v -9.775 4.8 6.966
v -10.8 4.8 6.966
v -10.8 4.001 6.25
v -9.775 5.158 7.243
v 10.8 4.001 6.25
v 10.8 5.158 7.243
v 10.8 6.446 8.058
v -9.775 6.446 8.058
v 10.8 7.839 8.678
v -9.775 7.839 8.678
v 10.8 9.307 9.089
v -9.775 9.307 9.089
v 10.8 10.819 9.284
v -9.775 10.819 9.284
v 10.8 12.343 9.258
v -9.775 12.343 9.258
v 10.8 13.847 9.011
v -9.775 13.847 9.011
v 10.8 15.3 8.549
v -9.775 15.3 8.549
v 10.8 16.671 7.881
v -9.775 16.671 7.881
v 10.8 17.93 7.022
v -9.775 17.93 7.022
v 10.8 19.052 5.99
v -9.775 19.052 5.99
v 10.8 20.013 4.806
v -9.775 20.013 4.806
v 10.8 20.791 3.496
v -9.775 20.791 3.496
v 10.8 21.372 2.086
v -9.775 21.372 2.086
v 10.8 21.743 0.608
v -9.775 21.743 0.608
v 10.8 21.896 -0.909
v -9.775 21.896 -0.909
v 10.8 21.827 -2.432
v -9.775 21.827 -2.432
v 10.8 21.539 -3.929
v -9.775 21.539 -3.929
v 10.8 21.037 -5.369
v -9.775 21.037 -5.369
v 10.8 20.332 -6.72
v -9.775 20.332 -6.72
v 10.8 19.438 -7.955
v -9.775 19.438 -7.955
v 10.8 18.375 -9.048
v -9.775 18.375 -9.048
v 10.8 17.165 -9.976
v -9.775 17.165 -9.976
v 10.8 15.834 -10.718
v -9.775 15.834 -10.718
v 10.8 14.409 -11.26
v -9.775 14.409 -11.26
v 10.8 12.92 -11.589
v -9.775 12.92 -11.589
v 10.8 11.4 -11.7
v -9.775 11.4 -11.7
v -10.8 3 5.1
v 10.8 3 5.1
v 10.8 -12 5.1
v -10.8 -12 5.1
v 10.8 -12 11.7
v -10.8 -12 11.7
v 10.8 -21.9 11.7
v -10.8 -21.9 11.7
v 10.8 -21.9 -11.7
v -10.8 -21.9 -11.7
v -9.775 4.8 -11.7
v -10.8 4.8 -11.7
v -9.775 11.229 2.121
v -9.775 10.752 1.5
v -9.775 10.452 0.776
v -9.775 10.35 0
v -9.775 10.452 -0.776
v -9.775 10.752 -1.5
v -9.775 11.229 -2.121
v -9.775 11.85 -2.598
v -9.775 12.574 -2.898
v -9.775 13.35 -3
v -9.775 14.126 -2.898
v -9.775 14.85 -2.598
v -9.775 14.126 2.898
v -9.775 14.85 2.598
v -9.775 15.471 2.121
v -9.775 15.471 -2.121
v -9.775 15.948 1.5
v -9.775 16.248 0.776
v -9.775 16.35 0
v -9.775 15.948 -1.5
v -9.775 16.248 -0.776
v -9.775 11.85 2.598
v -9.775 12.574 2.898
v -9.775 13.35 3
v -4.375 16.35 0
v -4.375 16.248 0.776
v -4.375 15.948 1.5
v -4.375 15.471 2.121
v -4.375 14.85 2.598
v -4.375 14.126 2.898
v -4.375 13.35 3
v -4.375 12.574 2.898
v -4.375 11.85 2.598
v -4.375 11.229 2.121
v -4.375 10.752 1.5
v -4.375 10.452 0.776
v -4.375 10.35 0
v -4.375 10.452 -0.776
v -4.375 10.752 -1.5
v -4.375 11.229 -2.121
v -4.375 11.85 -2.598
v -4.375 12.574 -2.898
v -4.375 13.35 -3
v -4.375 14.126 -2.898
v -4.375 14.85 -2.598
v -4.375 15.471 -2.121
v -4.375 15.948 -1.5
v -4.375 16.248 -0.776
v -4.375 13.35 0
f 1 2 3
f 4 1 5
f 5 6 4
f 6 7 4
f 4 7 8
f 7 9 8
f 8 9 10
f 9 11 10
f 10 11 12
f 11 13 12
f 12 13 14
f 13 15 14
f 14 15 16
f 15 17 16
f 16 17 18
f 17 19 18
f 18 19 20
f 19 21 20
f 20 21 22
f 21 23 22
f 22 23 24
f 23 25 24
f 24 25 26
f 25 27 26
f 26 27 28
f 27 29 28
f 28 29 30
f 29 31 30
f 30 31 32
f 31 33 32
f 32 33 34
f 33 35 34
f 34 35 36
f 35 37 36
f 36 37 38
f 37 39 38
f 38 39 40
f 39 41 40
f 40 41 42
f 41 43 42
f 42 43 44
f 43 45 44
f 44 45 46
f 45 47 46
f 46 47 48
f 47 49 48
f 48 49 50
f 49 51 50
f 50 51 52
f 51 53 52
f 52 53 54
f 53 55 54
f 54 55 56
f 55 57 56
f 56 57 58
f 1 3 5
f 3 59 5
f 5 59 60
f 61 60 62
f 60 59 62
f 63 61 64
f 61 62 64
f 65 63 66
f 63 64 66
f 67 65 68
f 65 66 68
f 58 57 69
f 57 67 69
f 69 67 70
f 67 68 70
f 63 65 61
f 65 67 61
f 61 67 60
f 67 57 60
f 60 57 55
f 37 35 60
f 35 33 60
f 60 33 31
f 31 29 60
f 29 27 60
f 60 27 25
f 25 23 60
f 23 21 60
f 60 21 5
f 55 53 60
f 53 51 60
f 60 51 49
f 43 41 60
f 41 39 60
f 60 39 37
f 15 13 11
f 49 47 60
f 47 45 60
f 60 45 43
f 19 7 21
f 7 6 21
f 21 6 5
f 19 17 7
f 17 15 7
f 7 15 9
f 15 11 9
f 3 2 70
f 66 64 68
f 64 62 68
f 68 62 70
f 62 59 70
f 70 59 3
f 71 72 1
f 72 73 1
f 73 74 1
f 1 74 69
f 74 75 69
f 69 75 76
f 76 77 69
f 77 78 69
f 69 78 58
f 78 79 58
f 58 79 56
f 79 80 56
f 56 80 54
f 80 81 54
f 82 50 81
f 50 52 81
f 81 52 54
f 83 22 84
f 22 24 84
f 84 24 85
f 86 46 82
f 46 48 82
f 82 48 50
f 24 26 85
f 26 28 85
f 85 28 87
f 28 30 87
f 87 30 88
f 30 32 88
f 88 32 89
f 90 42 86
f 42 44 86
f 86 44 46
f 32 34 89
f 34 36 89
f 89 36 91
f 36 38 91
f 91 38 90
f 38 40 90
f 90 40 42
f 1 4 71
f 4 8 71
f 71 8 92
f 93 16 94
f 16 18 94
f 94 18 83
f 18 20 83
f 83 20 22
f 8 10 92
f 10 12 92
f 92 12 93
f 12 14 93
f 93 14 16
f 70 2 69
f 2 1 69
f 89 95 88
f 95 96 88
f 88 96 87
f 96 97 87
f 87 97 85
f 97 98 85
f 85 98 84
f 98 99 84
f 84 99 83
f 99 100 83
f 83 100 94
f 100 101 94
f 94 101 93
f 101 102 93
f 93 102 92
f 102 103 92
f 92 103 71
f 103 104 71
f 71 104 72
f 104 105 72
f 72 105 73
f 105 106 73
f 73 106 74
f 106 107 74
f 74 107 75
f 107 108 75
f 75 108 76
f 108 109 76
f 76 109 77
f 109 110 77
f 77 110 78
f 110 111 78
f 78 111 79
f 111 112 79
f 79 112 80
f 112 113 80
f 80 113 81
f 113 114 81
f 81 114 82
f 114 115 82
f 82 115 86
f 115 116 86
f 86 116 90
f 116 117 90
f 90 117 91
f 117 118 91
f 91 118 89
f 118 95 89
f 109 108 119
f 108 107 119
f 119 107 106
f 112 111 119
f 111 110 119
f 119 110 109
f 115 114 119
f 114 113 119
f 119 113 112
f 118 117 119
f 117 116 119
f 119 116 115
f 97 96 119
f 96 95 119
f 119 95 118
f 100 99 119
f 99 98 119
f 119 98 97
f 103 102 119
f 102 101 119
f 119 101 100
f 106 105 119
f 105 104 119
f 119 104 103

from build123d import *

# Parameters (mm, degrees)
SALIENTE_EXTRUIR1_DEPTH    = 10.8
CORTAR_EXTRUIR1_DEPTH      = 28.076558127
CORTAR_EXTRUIR1_DEPTH_BACK = 28.076558127
CROQUIS4_W                 = 1.025
CROQUIS4_H                 = 17.1
CORTAR_EXTRUIR2_DEPTH      = 33.246404838
CORTAR_EXTRUIR2_DEPTH_BACK = 5.4
CROQUIS5_R                 = 3


with BuildPart() as part:
    # Croquis2 → Saliente-Extruir1 (new, symmetric)
    with BuildSketch(Plane(origin=(0, 0, 0), x_dir=(0, 0, -1), z_dir=(1, 0, 0))):
        with BuildLine():
            Line((11.7, 11.4), (11.7, -21.9))
            Line((11.7, -21.9), (-11.7, -21.9))
            Line((-11.7, -21.9), (-11.7, -12))
            Line((-11.7, -12), (-5.1, -12))
            Line((-5.1, -12), (-5.1, 3))
            ThreePointArc((-5.1, 3), (-3.495742753, 20.791485505), (11.7, 11.4))
        make_face()
    extrude(amount=SALIENTE_EXTRUIR1_DEPTH, both=True)

    # Croquis4 → Cortar-Extruir1 (cut, two sides: drawn at the far end of the back side and taken through both)
    with BuildSketch(Plane.XY.offset(-CORTAR_EXTRUIR1_DEPTH_BACK)):
        with Locations((-10.2875, 13.35)):
            Rectangle(CROQUIS4_W, CROQUIS4_H)
    extrude(amount=CORTAR_EXTRUIR1_DEPTH + CORTAR_EXTRUIR1_DEPTH_BACK, mode=Mode.SUBTRACT)

    # Croquis5 → Cortar-Extruir2 (cut, two sides: drawn at the far end of the back side and taken through both)
    with BuildSketch(Plane.ZY.offset(9.775).offset(-CORTAR_EXTRUIR2_DEPTH_BACK)):
        with Locations(Location((0, 13.35, 0), (0, 0, 90))):
            Circle(CROQUIS5_R)
    extrude(amount=CORTAR_EXTRUIR2_DEPTH + CORTAR_EXTRUIR2_DEPTH_BACK, mode=Mode.SUBTRACT)


solid = part.part
